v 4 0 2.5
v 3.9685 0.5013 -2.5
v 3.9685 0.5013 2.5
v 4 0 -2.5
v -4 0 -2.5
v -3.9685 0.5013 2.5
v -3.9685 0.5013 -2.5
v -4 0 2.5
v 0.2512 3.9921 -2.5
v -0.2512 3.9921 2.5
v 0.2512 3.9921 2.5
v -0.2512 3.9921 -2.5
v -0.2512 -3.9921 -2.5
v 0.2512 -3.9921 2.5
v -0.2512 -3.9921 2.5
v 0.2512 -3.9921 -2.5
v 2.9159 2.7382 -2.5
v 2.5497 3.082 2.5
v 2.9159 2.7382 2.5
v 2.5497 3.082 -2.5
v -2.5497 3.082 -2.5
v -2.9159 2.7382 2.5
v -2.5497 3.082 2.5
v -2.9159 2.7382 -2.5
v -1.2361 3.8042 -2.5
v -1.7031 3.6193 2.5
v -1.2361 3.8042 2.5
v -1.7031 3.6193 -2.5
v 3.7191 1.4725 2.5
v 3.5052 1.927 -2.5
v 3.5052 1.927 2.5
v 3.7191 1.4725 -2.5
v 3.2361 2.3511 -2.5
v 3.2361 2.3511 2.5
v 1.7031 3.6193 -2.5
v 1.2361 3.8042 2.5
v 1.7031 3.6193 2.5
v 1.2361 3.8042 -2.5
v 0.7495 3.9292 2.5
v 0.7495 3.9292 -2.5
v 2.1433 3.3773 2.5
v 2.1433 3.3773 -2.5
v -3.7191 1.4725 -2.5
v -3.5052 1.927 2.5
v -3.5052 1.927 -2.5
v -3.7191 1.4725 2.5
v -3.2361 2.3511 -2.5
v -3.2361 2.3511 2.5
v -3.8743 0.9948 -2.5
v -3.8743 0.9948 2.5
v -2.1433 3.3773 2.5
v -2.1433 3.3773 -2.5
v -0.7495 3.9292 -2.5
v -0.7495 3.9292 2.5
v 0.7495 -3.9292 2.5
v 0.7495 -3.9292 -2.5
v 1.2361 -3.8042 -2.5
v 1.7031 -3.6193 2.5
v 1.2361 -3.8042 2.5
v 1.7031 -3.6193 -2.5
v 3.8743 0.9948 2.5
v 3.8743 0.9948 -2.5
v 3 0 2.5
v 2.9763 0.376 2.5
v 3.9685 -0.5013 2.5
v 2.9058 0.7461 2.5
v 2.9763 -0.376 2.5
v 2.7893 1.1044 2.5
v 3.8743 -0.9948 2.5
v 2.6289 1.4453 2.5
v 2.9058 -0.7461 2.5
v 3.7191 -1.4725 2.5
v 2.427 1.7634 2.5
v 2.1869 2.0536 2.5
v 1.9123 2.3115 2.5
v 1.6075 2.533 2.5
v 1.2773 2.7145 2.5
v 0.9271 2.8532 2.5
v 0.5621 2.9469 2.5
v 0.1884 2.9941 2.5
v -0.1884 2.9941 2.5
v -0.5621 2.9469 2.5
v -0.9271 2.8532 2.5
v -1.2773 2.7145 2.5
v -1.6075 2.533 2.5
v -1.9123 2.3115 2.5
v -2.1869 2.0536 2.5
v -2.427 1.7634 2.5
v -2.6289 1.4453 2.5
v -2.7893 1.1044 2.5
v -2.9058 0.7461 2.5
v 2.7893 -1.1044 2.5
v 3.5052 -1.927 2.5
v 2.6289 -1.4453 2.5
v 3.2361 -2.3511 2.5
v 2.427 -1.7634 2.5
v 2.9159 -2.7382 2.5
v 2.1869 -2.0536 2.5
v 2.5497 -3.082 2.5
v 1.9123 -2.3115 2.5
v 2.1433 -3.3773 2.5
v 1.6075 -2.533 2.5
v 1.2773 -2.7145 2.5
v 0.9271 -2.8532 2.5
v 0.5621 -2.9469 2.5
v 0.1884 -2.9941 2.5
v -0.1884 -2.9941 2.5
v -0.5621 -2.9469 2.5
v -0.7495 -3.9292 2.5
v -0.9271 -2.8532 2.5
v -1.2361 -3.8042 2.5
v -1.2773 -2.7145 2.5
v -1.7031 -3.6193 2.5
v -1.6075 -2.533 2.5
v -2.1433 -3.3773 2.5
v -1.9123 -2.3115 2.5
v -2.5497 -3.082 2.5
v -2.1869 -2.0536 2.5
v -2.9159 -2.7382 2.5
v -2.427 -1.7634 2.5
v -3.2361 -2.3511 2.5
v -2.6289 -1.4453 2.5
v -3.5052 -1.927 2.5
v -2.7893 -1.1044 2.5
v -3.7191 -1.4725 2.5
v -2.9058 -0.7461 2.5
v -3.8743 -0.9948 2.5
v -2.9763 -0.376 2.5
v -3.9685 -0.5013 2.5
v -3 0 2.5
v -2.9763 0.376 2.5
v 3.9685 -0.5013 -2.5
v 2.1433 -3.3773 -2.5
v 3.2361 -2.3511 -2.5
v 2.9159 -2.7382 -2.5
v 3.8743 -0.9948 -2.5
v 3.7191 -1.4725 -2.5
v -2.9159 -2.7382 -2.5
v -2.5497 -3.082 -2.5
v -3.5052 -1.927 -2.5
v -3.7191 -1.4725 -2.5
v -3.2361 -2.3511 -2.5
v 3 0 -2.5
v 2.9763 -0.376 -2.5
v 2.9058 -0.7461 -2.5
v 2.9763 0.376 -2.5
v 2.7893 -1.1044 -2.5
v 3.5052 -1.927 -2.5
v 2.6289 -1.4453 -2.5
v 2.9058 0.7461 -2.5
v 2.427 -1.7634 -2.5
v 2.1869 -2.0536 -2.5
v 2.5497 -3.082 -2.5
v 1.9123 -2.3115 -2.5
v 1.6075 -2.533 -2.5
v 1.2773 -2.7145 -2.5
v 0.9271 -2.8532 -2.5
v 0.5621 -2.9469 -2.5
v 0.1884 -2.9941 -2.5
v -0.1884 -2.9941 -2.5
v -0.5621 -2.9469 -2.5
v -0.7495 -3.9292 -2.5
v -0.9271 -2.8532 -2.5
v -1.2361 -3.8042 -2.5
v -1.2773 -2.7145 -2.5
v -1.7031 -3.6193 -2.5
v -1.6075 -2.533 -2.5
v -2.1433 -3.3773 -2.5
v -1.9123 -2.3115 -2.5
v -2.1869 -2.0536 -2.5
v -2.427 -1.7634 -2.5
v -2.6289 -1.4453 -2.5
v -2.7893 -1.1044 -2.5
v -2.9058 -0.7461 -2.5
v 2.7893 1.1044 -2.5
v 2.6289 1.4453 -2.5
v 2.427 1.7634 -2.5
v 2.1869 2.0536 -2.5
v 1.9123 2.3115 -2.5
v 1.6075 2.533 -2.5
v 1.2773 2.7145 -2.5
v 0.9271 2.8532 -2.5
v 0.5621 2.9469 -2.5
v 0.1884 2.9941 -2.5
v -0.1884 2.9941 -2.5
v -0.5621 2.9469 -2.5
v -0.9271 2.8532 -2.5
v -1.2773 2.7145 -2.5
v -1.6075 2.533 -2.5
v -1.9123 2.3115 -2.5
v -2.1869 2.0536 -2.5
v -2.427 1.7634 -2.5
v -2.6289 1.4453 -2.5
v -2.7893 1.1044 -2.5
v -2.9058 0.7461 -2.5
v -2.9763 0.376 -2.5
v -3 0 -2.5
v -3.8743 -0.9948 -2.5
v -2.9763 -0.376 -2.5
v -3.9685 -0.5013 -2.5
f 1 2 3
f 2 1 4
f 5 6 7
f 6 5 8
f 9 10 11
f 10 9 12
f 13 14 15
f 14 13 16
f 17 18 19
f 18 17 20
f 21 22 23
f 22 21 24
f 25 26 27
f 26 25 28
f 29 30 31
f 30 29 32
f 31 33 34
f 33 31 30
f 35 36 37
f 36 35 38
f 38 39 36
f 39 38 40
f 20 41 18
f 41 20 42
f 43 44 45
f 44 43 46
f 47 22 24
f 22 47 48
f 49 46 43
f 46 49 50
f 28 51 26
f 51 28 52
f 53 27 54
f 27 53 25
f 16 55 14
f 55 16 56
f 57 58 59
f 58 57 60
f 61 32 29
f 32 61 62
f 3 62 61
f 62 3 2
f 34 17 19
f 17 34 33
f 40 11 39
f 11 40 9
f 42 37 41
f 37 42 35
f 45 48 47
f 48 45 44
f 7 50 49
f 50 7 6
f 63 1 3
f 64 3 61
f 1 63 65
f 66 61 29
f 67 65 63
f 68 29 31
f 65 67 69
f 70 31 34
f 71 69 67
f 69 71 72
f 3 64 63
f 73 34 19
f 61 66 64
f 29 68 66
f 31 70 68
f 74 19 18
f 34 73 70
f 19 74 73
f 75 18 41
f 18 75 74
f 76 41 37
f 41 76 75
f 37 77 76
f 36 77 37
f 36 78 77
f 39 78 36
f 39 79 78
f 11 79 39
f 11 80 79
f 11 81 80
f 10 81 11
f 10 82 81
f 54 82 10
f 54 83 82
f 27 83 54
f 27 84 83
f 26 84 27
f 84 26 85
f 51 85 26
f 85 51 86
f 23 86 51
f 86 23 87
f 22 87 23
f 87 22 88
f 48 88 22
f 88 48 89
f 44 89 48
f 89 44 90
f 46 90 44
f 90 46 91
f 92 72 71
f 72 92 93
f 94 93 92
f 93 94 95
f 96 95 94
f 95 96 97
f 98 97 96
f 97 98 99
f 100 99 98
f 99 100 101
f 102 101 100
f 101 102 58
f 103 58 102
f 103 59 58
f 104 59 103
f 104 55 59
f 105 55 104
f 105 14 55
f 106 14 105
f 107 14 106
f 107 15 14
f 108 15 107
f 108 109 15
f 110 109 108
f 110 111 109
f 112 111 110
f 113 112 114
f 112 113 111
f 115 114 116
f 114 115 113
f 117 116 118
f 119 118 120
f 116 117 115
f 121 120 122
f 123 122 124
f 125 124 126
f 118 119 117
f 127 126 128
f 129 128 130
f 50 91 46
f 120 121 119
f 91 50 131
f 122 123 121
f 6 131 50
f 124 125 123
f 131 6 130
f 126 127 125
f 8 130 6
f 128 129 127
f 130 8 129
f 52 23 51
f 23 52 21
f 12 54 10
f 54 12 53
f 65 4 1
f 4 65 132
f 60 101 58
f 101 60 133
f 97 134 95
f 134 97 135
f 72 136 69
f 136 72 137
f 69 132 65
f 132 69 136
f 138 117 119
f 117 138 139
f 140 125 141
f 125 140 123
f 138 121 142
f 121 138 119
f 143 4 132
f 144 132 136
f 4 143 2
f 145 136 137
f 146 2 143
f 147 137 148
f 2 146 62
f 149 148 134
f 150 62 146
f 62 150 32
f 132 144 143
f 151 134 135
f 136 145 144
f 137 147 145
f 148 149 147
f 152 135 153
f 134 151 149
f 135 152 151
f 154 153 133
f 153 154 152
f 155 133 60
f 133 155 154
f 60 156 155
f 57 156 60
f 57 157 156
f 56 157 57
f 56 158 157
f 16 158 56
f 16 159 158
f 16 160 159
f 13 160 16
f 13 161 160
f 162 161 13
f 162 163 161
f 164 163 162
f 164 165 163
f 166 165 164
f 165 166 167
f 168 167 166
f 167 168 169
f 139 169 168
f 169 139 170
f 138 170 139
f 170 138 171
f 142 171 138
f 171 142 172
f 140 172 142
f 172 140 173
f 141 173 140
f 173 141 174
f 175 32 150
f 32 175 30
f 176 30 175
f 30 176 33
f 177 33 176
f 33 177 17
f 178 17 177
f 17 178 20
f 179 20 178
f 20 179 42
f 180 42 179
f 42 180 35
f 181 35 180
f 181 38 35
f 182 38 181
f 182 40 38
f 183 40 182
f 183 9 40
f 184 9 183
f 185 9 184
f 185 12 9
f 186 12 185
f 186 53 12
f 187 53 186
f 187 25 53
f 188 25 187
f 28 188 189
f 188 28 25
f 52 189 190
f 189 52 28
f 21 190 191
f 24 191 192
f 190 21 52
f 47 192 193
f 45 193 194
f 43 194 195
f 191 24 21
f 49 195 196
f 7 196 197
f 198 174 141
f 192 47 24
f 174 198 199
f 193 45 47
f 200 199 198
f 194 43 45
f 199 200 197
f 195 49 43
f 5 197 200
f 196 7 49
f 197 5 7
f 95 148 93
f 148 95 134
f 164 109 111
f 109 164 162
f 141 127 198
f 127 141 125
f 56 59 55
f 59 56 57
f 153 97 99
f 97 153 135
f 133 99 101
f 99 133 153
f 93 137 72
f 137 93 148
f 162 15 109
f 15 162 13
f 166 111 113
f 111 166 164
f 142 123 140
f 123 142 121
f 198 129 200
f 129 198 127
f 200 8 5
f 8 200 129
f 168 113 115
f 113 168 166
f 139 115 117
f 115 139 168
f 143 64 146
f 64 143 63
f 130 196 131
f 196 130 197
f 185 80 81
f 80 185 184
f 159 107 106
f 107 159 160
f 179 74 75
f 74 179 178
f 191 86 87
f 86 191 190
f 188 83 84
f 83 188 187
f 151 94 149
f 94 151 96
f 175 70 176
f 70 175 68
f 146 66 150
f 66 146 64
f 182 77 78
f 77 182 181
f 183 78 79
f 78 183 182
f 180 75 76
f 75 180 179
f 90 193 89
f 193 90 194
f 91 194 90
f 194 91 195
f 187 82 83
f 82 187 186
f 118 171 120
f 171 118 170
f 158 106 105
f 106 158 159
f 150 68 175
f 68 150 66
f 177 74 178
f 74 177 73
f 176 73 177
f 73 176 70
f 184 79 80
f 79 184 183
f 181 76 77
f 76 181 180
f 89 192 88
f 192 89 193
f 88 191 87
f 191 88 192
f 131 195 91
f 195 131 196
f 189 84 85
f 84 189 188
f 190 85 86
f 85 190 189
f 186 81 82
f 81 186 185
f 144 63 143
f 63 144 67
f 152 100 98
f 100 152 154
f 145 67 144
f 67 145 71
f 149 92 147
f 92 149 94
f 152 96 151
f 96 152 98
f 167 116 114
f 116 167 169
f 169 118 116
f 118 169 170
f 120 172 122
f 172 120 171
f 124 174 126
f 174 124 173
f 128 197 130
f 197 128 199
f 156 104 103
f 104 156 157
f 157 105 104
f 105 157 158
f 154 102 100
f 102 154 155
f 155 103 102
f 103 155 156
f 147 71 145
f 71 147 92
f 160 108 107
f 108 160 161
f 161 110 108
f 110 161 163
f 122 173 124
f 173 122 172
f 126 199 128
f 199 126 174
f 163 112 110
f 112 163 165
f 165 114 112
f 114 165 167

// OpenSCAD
$fn = 50;


difference() {
	union() {
		translate(v = [0, 0, -2.5000000000]) {
			cylinder(h = 5, r = 4.0000000000);
		}
	}
	union() {
		translate(v = [0, 0, -100.0000000000]) {
			cylinder(h = 200, r = 3);
		}
	}
}
